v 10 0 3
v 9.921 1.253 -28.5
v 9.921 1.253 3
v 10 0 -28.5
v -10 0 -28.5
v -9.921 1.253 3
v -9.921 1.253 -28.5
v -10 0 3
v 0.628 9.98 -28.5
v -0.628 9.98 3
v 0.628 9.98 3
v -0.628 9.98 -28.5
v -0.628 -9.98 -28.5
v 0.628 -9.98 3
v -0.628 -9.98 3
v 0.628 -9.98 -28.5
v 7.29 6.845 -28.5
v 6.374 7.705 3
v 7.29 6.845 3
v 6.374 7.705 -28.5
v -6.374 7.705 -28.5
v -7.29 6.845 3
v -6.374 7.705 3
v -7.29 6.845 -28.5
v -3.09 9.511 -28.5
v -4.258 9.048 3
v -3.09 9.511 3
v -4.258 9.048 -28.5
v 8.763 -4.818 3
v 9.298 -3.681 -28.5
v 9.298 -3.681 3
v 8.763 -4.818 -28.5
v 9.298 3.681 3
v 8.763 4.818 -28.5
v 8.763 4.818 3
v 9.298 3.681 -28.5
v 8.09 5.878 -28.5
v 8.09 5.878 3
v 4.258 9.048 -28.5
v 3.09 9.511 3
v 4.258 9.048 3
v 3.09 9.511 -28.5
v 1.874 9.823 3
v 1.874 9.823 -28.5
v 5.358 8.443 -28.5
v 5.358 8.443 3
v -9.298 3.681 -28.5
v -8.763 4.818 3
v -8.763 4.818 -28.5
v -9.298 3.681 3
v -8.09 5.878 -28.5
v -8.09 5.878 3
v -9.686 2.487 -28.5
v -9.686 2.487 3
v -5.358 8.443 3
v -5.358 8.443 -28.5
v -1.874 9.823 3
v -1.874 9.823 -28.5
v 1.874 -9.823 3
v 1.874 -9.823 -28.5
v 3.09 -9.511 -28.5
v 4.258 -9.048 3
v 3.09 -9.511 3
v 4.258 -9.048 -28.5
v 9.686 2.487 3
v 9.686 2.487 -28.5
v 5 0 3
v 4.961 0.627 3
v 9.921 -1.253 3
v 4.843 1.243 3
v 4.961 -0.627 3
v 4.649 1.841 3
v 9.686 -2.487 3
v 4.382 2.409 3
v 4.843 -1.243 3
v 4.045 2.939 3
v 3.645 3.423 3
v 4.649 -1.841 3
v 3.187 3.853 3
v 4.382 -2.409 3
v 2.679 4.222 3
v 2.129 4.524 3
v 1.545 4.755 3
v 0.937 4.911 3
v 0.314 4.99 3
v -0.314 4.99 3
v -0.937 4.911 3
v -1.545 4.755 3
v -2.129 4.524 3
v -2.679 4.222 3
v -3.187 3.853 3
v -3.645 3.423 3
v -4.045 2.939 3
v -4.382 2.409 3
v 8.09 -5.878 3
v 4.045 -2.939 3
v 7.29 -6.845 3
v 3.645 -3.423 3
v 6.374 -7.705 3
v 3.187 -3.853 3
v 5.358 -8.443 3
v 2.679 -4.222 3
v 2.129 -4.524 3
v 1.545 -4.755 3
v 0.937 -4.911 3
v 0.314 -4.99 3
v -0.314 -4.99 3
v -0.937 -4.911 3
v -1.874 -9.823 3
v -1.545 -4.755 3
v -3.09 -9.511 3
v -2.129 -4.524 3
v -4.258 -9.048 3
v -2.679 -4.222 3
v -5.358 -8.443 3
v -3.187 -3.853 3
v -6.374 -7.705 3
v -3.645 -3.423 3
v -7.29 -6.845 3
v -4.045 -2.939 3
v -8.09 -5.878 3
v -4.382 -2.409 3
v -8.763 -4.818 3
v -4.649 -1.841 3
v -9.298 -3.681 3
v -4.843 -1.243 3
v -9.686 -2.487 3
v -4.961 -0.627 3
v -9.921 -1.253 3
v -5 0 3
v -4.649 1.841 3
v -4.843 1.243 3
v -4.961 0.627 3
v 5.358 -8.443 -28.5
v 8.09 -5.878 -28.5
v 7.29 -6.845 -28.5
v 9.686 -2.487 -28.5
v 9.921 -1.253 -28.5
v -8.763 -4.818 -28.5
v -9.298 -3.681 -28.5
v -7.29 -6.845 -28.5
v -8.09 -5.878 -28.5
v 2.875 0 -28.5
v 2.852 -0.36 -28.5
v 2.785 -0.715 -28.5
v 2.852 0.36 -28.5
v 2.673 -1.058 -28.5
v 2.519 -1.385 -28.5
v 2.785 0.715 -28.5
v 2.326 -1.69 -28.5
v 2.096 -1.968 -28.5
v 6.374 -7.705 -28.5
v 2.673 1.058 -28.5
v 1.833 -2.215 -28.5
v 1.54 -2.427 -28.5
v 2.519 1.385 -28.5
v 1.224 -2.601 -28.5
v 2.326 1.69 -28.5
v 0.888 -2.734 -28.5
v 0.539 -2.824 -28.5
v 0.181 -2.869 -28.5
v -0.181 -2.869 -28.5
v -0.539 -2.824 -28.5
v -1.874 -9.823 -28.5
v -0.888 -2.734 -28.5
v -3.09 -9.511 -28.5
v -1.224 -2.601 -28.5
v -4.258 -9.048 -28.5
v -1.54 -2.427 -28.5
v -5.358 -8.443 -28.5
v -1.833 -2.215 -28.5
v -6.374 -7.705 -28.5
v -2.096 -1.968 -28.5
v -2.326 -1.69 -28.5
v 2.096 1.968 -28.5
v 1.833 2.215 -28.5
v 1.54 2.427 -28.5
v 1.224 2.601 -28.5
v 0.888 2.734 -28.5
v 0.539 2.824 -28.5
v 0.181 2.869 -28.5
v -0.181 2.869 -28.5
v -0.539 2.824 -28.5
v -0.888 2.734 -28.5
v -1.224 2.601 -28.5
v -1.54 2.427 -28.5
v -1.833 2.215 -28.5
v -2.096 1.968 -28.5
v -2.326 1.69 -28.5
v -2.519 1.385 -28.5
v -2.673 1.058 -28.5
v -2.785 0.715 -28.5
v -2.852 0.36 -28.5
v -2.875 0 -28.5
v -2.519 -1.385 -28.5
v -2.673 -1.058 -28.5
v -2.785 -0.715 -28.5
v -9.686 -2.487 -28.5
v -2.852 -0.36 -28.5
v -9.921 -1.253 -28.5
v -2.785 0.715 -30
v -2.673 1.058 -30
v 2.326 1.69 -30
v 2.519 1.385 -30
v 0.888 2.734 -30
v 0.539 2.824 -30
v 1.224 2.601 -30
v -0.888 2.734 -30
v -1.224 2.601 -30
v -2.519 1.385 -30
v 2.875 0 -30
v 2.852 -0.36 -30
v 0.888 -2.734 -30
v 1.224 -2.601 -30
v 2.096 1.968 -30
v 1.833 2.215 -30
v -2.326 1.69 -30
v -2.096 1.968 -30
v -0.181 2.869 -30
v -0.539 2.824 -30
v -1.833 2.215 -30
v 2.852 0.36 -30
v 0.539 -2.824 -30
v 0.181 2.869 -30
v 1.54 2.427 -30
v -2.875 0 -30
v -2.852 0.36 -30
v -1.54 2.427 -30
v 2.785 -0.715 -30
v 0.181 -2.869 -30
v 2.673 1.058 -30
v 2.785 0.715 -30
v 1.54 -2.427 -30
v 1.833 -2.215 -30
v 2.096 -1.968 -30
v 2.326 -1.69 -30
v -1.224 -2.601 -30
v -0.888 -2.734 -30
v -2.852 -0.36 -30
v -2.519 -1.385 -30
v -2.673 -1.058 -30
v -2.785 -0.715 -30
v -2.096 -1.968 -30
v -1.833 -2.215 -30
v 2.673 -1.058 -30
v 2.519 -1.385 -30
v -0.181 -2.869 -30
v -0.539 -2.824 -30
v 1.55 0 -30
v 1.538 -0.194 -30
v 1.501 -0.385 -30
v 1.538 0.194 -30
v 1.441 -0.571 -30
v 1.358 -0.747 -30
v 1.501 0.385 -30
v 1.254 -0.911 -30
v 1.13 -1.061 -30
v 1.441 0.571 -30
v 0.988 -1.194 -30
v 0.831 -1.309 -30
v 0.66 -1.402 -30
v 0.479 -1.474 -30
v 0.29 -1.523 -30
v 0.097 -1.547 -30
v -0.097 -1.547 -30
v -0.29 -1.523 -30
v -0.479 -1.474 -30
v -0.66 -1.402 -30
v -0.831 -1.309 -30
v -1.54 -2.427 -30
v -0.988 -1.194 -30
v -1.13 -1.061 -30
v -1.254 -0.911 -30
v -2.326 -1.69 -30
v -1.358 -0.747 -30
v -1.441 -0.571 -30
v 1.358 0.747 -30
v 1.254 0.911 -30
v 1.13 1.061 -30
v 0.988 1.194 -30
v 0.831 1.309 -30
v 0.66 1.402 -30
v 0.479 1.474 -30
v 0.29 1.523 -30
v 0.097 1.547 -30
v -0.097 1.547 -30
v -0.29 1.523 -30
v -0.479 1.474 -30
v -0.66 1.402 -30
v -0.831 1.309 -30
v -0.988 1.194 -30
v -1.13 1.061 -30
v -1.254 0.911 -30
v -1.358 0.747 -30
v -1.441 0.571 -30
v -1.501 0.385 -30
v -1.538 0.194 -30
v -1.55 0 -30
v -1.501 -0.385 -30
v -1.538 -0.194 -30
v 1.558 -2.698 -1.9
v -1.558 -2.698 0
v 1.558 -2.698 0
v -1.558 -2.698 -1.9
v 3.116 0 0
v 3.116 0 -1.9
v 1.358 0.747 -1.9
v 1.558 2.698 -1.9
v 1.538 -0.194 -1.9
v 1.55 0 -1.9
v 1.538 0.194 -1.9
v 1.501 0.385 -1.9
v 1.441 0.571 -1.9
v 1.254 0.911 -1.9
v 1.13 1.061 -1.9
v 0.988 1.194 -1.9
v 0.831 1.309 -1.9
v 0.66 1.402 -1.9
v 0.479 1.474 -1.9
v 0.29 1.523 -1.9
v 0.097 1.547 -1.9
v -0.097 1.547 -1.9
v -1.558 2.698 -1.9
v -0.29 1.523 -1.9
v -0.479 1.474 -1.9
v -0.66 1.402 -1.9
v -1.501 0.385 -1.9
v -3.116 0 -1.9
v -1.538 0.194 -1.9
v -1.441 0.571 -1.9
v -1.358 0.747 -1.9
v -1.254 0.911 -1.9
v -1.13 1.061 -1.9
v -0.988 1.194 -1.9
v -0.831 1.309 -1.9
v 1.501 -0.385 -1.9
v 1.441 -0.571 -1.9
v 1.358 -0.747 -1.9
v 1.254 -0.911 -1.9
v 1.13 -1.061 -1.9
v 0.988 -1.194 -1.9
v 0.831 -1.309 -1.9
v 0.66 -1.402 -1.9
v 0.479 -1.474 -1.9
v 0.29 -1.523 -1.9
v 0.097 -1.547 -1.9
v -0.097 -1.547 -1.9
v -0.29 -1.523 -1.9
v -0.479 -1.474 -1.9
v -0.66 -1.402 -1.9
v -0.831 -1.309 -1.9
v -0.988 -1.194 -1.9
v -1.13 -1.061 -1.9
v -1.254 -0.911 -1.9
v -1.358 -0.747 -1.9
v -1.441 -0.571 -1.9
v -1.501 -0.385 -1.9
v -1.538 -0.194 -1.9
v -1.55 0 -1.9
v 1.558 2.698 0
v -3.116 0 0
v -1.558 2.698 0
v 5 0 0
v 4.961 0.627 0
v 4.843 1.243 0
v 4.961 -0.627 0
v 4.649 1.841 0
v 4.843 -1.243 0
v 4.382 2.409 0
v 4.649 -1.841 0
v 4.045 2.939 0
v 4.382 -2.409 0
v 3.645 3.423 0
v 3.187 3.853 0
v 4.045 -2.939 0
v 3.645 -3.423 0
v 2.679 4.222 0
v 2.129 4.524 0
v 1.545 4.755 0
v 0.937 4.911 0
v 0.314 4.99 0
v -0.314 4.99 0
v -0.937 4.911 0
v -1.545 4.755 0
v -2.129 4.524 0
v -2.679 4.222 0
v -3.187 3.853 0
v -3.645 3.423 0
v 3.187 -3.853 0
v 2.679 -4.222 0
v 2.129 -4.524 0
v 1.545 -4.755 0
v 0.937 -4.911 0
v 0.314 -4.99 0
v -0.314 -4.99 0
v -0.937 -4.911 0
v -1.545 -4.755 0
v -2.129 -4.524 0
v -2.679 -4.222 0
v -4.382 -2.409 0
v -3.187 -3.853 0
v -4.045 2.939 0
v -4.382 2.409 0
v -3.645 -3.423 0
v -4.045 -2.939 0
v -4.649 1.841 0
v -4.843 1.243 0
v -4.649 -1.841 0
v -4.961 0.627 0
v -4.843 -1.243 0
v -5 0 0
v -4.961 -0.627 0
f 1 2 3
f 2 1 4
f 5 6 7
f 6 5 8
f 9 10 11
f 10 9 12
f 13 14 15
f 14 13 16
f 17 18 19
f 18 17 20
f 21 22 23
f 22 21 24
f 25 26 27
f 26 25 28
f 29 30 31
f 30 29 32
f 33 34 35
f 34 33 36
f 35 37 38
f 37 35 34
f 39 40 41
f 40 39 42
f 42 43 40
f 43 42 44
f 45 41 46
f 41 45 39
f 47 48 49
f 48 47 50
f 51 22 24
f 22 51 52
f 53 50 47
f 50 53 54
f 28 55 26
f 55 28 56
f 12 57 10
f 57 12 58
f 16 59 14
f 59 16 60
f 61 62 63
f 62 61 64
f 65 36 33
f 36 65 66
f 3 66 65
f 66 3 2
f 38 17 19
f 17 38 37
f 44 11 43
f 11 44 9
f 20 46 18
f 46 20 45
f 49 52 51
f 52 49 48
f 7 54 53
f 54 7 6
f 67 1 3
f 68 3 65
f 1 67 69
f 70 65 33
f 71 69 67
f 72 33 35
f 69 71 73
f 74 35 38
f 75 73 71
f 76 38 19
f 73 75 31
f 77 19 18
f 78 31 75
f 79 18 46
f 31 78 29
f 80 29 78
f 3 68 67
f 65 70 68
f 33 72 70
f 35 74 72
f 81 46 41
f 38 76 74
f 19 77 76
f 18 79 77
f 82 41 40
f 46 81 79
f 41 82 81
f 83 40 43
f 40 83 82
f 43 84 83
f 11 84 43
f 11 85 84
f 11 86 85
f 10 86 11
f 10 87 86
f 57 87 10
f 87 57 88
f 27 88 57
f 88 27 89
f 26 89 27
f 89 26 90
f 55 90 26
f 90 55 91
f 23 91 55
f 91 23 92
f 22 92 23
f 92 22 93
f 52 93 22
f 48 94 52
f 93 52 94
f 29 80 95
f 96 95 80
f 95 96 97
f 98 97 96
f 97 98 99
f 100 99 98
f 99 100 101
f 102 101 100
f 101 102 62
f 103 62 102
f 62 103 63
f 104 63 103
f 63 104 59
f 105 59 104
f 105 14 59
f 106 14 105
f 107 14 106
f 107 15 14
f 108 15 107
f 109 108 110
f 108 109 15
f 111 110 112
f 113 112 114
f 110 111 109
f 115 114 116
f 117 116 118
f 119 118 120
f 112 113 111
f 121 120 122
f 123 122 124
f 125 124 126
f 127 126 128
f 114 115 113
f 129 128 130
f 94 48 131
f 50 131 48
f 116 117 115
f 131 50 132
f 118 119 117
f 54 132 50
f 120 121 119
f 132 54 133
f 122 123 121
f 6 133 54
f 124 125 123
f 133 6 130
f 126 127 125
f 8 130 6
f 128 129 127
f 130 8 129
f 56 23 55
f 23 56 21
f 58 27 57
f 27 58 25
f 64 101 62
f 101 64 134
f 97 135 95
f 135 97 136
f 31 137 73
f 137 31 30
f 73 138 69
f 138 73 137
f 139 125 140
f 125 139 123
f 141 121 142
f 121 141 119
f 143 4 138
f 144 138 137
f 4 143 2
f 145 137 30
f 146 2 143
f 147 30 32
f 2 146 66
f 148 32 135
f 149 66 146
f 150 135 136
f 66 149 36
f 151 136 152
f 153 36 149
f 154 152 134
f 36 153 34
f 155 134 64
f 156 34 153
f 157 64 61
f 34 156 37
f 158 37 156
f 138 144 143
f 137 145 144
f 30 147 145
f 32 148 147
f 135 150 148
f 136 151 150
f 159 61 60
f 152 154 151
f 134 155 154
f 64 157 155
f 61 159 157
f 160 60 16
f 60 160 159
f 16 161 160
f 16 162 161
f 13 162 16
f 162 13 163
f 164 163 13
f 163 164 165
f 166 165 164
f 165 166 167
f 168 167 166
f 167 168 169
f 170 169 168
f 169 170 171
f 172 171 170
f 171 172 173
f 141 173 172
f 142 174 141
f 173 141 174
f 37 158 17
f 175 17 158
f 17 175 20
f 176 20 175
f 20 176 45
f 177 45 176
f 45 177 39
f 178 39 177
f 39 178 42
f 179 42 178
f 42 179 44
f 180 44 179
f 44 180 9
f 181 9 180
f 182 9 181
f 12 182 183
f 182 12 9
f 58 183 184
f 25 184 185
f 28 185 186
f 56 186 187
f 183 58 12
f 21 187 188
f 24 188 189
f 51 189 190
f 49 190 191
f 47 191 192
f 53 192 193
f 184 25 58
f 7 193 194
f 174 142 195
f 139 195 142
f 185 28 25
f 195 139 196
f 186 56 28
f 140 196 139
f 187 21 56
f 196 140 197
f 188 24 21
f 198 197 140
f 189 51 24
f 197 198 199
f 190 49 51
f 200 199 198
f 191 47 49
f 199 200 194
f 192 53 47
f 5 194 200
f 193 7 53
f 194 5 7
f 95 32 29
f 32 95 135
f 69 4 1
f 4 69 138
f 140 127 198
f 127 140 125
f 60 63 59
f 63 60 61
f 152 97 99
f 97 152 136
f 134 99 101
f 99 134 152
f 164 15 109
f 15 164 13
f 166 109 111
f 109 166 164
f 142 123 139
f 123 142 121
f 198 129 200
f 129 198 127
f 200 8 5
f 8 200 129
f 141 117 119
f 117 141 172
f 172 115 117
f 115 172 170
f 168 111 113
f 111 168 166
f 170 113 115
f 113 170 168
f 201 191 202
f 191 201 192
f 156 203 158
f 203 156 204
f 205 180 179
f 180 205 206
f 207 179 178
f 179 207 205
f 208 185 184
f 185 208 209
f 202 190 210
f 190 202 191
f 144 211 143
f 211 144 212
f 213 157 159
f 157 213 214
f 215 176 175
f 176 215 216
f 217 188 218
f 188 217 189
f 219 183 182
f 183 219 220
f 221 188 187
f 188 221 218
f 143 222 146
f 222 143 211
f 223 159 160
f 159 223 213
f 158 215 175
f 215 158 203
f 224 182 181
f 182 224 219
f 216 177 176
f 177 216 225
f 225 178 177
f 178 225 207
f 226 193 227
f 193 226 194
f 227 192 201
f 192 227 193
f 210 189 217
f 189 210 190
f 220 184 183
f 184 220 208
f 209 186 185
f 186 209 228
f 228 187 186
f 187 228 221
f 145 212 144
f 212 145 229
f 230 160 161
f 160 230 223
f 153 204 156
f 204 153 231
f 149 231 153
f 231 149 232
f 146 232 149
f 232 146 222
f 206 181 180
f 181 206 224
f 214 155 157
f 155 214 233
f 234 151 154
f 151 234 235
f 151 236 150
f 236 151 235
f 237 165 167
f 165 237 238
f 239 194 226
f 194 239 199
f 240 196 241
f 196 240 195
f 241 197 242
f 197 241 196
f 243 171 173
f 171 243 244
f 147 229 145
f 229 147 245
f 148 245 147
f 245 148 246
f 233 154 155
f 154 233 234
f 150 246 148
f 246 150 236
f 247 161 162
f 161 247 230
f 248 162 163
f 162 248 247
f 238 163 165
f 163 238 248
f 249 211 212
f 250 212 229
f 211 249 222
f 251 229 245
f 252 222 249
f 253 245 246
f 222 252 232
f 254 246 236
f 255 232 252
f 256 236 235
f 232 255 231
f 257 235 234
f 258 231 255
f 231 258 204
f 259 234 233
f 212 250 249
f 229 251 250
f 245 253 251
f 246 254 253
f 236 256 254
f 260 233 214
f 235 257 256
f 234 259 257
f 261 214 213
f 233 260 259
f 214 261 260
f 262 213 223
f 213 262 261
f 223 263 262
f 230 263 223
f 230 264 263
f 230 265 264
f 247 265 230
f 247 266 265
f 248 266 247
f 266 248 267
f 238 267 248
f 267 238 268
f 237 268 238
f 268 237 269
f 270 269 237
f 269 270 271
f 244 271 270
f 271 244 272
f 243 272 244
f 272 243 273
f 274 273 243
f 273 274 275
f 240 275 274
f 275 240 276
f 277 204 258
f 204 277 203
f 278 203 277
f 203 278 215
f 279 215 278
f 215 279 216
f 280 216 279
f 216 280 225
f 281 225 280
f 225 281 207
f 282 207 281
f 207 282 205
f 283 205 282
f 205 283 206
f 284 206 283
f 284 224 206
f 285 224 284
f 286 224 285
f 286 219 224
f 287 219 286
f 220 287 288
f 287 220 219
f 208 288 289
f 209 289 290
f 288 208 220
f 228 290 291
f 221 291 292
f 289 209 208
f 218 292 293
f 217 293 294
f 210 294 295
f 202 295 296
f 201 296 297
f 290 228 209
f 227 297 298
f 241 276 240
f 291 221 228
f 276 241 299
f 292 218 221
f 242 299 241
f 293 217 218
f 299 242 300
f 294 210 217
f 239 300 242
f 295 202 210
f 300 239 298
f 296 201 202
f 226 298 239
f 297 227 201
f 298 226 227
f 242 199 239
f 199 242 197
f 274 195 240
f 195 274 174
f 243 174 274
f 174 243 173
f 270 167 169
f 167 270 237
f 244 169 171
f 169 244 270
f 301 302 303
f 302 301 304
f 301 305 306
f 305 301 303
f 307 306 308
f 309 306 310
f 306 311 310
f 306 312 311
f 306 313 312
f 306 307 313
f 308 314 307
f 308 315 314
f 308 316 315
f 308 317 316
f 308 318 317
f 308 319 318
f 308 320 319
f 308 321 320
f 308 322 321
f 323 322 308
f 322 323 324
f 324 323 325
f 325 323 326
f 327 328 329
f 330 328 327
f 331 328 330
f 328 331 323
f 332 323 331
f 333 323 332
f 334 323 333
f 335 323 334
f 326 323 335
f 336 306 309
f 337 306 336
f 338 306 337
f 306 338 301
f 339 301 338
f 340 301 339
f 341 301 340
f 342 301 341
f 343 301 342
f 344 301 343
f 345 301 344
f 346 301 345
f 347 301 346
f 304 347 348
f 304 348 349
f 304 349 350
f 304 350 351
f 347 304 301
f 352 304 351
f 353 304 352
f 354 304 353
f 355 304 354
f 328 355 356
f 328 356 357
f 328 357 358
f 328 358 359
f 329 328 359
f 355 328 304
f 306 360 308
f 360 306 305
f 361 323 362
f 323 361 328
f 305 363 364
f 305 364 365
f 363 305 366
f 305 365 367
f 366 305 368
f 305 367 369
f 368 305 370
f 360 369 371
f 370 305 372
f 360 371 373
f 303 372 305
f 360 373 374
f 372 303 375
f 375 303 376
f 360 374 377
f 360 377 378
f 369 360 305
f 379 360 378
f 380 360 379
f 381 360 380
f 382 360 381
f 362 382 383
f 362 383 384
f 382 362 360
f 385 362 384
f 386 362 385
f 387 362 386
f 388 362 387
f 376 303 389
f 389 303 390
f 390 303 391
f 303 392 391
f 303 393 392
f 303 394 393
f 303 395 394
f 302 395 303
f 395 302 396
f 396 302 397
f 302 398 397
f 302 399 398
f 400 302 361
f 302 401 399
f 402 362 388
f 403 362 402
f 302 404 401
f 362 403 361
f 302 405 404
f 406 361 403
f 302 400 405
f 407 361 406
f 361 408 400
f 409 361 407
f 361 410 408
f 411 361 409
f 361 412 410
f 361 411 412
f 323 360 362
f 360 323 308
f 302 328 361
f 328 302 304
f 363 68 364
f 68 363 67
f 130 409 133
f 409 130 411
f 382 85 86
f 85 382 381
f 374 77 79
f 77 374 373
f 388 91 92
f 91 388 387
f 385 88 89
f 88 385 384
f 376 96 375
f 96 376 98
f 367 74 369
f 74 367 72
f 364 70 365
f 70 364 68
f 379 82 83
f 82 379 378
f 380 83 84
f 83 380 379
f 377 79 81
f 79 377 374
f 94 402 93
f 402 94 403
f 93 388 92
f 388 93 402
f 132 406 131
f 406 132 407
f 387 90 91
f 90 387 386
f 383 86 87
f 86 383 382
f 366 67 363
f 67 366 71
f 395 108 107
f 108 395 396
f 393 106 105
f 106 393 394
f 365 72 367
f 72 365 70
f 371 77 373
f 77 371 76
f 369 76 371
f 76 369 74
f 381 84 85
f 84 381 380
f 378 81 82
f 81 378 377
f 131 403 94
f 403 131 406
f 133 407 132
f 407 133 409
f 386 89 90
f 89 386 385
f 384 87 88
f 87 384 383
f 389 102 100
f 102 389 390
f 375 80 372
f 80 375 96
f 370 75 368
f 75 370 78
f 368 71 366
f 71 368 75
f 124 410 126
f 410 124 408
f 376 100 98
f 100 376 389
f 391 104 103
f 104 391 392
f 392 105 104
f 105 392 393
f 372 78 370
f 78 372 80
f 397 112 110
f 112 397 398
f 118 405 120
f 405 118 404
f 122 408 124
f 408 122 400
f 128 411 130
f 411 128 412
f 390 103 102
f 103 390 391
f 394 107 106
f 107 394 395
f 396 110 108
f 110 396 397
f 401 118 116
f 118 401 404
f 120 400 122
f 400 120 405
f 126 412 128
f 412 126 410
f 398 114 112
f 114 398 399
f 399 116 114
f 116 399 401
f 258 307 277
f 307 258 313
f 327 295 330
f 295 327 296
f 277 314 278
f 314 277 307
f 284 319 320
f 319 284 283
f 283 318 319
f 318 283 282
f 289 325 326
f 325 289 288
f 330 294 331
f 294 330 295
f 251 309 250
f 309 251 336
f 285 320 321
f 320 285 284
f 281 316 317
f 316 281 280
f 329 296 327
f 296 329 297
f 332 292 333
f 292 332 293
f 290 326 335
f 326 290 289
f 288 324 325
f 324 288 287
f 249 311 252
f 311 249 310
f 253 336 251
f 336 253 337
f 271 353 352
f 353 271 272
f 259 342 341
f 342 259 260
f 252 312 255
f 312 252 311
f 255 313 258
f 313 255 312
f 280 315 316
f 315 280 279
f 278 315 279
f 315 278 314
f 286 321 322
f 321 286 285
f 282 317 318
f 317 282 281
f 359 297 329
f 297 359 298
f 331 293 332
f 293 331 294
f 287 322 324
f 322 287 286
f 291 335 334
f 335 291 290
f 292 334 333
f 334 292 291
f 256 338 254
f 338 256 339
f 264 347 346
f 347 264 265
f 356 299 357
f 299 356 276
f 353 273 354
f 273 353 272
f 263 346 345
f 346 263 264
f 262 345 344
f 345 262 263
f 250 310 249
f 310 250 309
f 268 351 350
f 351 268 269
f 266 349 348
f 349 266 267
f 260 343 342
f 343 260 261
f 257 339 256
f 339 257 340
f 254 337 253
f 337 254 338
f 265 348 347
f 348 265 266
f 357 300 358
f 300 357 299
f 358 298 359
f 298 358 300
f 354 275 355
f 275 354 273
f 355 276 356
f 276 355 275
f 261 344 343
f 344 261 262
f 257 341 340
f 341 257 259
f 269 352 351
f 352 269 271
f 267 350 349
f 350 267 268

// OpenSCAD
$fn = 50;

difference() {
	union() {
		translate(v = [0, 0, -28.5]) {
			cylinder(h = 31.5, r = 10.0);
		}
		#translate(v = [0, 0, -30.0]) {
			cylinder(h = 30, r = 2.875);
		}
	}
	union() {
		translate(v = [0, 0, 0]) {
			rotate(a = [0, 0, 0]) {
				difference() {
					union() {
						translate(v = [0, 0, -1.9]) {
							linear_extrude(height = 1.9) {
								polygon(points = [[3.1158, 0.0], [1.5579000000000005, 2.698361953111554], [-1.5578999999999994, 2.6983619531115544], [-3.1158, 3.815754496783323e-16], [-1.5579000000000014, -2.6983619531115535], [1.557899999999998, -2.6983619531115552]]);
							}
						}
					}
					union();
				}
			}
		}
		#cylinder(h = 3, r = 5.0);
		#translate(v = [0, 0, -100.0]) {
			cylinder(h = 200, r = 1.55);
		}
	}
}
